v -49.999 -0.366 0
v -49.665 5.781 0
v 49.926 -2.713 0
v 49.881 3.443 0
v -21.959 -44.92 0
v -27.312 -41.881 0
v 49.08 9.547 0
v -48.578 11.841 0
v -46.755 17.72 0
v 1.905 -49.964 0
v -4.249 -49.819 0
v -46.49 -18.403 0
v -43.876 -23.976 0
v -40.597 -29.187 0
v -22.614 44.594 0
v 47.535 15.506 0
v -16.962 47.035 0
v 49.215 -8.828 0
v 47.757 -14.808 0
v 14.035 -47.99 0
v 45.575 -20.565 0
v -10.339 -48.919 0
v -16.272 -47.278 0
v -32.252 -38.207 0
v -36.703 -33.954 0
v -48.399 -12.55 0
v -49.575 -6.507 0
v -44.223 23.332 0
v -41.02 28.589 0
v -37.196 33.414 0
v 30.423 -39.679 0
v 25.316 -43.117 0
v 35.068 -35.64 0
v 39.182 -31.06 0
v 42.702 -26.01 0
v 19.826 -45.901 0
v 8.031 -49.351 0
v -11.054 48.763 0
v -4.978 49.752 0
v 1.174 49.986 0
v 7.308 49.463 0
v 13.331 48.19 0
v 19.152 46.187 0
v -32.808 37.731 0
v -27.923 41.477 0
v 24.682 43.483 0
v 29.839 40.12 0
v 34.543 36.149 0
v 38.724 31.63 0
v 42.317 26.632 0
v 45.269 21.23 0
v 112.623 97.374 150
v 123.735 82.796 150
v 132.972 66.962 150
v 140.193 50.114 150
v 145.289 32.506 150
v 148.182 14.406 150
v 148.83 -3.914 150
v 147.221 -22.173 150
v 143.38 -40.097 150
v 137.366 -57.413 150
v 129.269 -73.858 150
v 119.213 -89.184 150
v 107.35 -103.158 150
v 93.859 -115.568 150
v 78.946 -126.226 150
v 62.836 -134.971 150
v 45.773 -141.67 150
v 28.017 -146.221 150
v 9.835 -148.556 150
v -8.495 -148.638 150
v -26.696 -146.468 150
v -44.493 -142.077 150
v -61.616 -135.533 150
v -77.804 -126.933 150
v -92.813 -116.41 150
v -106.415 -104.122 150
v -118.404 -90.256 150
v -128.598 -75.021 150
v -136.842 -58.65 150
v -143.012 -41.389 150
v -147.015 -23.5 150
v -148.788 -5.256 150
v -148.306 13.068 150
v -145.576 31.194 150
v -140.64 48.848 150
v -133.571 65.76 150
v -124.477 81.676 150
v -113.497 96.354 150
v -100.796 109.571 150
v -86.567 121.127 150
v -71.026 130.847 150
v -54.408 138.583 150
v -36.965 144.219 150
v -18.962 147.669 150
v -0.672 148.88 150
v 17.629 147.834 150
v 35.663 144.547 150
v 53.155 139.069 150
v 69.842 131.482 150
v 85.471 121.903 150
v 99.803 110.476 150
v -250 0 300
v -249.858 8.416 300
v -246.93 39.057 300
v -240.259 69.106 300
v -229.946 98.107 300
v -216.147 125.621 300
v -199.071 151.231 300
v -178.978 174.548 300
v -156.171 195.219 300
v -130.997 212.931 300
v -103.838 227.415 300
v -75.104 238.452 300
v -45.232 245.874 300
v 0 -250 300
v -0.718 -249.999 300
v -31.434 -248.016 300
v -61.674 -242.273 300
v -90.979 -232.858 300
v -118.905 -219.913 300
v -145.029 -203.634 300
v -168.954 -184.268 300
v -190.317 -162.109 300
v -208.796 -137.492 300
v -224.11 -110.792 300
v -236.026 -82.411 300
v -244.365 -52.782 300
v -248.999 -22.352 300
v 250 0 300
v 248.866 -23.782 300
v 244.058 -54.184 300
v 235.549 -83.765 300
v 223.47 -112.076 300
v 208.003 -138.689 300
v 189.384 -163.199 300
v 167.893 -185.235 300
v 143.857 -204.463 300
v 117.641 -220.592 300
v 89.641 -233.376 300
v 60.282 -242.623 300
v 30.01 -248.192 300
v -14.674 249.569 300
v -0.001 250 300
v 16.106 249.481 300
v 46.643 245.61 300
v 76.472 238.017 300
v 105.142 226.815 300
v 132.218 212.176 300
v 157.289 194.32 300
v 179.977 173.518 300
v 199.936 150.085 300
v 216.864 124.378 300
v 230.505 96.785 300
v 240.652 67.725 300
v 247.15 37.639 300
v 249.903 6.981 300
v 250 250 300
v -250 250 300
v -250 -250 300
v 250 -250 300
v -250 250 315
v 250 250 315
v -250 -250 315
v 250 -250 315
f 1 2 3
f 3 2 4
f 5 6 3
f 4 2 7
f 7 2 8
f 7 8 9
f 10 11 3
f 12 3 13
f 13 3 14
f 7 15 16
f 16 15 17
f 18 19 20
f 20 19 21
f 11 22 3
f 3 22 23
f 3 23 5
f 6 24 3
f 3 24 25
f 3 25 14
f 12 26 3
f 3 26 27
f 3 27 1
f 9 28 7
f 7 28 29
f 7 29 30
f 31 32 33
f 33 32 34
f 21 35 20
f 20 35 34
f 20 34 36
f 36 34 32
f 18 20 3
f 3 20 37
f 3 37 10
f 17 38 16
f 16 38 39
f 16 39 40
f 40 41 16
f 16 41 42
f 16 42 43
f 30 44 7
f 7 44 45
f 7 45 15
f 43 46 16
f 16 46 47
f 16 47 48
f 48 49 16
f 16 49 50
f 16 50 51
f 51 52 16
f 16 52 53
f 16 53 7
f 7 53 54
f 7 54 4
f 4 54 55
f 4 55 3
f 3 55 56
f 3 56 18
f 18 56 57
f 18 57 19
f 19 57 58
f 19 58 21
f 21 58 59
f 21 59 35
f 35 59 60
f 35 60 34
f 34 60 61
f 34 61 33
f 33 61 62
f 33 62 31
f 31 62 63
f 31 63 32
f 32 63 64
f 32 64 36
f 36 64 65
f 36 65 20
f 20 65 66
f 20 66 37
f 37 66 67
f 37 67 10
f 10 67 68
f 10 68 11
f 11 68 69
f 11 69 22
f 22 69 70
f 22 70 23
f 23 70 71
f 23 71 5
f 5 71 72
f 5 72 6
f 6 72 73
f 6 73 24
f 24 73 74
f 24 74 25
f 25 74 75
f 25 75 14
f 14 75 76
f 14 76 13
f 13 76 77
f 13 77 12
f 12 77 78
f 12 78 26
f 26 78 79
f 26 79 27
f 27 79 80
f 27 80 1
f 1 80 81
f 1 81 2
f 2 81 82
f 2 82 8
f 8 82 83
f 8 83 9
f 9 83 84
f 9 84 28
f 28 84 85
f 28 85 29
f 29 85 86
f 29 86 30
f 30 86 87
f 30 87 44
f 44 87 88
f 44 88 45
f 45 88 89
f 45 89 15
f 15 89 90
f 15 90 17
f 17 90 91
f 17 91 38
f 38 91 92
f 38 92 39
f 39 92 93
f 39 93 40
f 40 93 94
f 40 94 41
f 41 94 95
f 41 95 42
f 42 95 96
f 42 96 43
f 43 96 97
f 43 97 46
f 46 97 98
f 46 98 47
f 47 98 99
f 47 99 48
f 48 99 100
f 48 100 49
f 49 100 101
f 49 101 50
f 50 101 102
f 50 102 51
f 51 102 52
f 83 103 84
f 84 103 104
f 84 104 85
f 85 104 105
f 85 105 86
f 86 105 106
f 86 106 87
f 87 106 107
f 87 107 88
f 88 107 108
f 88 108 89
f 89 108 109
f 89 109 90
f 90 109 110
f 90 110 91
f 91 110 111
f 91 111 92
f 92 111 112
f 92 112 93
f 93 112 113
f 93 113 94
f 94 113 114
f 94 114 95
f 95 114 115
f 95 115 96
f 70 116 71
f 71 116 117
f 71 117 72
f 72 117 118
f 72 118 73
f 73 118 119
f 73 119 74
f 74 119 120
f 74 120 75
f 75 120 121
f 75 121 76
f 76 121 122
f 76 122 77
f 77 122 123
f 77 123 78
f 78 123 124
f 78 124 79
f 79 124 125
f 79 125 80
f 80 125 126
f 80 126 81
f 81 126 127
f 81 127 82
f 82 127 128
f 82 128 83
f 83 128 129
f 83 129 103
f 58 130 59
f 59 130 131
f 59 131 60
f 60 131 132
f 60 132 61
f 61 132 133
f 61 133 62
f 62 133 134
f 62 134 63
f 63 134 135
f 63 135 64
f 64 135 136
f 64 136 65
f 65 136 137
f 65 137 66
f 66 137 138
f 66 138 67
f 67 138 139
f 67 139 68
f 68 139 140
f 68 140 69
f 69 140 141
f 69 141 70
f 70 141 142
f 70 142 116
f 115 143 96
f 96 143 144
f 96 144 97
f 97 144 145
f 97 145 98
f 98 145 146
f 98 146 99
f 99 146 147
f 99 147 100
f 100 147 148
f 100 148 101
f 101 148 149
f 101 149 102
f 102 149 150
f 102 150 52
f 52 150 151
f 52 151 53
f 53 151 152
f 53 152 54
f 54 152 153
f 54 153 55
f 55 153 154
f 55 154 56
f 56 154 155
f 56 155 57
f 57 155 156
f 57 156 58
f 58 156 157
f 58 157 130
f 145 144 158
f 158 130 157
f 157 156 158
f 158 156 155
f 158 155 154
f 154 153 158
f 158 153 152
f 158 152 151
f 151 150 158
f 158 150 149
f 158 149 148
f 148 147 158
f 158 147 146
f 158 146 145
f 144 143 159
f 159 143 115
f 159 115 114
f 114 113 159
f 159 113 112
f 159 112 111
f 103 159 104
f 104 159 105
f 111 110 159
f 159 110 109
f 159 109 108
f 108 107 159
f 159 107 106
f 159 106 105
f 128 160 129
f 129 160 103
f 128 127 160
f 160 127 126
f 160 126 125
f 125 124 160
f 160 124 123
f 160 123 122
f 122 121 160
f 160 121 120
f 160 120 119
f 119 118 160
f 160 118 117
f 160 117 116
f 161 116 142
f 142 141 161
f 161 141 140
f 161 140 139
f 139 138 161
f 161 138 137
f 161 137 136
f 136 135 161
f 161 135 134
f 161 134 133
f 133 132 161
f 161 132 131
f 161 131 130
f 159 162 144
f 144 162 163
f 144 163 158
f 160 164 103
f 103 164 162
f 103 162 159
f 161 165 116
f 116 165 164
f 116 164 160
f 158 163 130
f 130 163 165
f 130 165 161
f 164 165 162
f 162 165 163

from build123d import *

# Parameters (mm, degrees)
EXTRUDE_1_DEPTH = 15


with BuildPart() as part:
    # 放样1: read off the stored shape, not the designer's step
    # 放样1: loft between two sections, ruled curve by curve
    loft_1_from = [
        Edge.make_bspline([(157.289403045, 194.319437241, 300), (545.928277528, -120.259368848, 300), (231.349471438, -508.898243331, 300), (-157.289403045, -194.319437241, 300), (-545.928277528, 120.259368848, 300), (-231.349471438, 508.898243331, 300), (157.289403045, 194.319437241, 300)], [0, 0, 0, 0, 0.5, 0.5, 0.5, 1, 1, 1, 1], 3, [1, 0.333333333, 0.333333333, 1, 0.333333333, 0.333333333, 1]),
    ]
    loft_1_to = [
        Edge.make_bspline([(42.317097013, 26.631997679, 0), (95.581092372, -58.002196347, 0), (10.946898346, -111.266191705, 0), (-42.317097013, -26.631997679, 0), (-95.581092372, 58.002196347, 0), (-10.946898346, 111.266191705, 0), (42.317097013, 26.631997679, 0)], [0, 0, 0, 0, 0.5, 0.5, 0.5, 1, 1, 1, 1], 3, [1, 0.333333333, 0.333333333, 1, 0.333333333, 0.333333333, 1]),
    ]
    loft_1 = Solid(Shell([*[Face.make_surface_from_curves(loft_1_from[k], loft_1_to[k]) for k in range(1)], Face(Wire(loft_1_from)), Face(Wire(loft_1_to))]))
    add(loft_1)

    # 草图4 → 凸台-拉伸1 (add)
    with BuildSketch(Plane.XY.offset(300)):
        Polygon((0, 250), (-250, 250), (-250, -250), (250, -250), (250, 250), align=None)
    extrude(amount=EXTRUDE_1_DEPTH)


solid = part.part
